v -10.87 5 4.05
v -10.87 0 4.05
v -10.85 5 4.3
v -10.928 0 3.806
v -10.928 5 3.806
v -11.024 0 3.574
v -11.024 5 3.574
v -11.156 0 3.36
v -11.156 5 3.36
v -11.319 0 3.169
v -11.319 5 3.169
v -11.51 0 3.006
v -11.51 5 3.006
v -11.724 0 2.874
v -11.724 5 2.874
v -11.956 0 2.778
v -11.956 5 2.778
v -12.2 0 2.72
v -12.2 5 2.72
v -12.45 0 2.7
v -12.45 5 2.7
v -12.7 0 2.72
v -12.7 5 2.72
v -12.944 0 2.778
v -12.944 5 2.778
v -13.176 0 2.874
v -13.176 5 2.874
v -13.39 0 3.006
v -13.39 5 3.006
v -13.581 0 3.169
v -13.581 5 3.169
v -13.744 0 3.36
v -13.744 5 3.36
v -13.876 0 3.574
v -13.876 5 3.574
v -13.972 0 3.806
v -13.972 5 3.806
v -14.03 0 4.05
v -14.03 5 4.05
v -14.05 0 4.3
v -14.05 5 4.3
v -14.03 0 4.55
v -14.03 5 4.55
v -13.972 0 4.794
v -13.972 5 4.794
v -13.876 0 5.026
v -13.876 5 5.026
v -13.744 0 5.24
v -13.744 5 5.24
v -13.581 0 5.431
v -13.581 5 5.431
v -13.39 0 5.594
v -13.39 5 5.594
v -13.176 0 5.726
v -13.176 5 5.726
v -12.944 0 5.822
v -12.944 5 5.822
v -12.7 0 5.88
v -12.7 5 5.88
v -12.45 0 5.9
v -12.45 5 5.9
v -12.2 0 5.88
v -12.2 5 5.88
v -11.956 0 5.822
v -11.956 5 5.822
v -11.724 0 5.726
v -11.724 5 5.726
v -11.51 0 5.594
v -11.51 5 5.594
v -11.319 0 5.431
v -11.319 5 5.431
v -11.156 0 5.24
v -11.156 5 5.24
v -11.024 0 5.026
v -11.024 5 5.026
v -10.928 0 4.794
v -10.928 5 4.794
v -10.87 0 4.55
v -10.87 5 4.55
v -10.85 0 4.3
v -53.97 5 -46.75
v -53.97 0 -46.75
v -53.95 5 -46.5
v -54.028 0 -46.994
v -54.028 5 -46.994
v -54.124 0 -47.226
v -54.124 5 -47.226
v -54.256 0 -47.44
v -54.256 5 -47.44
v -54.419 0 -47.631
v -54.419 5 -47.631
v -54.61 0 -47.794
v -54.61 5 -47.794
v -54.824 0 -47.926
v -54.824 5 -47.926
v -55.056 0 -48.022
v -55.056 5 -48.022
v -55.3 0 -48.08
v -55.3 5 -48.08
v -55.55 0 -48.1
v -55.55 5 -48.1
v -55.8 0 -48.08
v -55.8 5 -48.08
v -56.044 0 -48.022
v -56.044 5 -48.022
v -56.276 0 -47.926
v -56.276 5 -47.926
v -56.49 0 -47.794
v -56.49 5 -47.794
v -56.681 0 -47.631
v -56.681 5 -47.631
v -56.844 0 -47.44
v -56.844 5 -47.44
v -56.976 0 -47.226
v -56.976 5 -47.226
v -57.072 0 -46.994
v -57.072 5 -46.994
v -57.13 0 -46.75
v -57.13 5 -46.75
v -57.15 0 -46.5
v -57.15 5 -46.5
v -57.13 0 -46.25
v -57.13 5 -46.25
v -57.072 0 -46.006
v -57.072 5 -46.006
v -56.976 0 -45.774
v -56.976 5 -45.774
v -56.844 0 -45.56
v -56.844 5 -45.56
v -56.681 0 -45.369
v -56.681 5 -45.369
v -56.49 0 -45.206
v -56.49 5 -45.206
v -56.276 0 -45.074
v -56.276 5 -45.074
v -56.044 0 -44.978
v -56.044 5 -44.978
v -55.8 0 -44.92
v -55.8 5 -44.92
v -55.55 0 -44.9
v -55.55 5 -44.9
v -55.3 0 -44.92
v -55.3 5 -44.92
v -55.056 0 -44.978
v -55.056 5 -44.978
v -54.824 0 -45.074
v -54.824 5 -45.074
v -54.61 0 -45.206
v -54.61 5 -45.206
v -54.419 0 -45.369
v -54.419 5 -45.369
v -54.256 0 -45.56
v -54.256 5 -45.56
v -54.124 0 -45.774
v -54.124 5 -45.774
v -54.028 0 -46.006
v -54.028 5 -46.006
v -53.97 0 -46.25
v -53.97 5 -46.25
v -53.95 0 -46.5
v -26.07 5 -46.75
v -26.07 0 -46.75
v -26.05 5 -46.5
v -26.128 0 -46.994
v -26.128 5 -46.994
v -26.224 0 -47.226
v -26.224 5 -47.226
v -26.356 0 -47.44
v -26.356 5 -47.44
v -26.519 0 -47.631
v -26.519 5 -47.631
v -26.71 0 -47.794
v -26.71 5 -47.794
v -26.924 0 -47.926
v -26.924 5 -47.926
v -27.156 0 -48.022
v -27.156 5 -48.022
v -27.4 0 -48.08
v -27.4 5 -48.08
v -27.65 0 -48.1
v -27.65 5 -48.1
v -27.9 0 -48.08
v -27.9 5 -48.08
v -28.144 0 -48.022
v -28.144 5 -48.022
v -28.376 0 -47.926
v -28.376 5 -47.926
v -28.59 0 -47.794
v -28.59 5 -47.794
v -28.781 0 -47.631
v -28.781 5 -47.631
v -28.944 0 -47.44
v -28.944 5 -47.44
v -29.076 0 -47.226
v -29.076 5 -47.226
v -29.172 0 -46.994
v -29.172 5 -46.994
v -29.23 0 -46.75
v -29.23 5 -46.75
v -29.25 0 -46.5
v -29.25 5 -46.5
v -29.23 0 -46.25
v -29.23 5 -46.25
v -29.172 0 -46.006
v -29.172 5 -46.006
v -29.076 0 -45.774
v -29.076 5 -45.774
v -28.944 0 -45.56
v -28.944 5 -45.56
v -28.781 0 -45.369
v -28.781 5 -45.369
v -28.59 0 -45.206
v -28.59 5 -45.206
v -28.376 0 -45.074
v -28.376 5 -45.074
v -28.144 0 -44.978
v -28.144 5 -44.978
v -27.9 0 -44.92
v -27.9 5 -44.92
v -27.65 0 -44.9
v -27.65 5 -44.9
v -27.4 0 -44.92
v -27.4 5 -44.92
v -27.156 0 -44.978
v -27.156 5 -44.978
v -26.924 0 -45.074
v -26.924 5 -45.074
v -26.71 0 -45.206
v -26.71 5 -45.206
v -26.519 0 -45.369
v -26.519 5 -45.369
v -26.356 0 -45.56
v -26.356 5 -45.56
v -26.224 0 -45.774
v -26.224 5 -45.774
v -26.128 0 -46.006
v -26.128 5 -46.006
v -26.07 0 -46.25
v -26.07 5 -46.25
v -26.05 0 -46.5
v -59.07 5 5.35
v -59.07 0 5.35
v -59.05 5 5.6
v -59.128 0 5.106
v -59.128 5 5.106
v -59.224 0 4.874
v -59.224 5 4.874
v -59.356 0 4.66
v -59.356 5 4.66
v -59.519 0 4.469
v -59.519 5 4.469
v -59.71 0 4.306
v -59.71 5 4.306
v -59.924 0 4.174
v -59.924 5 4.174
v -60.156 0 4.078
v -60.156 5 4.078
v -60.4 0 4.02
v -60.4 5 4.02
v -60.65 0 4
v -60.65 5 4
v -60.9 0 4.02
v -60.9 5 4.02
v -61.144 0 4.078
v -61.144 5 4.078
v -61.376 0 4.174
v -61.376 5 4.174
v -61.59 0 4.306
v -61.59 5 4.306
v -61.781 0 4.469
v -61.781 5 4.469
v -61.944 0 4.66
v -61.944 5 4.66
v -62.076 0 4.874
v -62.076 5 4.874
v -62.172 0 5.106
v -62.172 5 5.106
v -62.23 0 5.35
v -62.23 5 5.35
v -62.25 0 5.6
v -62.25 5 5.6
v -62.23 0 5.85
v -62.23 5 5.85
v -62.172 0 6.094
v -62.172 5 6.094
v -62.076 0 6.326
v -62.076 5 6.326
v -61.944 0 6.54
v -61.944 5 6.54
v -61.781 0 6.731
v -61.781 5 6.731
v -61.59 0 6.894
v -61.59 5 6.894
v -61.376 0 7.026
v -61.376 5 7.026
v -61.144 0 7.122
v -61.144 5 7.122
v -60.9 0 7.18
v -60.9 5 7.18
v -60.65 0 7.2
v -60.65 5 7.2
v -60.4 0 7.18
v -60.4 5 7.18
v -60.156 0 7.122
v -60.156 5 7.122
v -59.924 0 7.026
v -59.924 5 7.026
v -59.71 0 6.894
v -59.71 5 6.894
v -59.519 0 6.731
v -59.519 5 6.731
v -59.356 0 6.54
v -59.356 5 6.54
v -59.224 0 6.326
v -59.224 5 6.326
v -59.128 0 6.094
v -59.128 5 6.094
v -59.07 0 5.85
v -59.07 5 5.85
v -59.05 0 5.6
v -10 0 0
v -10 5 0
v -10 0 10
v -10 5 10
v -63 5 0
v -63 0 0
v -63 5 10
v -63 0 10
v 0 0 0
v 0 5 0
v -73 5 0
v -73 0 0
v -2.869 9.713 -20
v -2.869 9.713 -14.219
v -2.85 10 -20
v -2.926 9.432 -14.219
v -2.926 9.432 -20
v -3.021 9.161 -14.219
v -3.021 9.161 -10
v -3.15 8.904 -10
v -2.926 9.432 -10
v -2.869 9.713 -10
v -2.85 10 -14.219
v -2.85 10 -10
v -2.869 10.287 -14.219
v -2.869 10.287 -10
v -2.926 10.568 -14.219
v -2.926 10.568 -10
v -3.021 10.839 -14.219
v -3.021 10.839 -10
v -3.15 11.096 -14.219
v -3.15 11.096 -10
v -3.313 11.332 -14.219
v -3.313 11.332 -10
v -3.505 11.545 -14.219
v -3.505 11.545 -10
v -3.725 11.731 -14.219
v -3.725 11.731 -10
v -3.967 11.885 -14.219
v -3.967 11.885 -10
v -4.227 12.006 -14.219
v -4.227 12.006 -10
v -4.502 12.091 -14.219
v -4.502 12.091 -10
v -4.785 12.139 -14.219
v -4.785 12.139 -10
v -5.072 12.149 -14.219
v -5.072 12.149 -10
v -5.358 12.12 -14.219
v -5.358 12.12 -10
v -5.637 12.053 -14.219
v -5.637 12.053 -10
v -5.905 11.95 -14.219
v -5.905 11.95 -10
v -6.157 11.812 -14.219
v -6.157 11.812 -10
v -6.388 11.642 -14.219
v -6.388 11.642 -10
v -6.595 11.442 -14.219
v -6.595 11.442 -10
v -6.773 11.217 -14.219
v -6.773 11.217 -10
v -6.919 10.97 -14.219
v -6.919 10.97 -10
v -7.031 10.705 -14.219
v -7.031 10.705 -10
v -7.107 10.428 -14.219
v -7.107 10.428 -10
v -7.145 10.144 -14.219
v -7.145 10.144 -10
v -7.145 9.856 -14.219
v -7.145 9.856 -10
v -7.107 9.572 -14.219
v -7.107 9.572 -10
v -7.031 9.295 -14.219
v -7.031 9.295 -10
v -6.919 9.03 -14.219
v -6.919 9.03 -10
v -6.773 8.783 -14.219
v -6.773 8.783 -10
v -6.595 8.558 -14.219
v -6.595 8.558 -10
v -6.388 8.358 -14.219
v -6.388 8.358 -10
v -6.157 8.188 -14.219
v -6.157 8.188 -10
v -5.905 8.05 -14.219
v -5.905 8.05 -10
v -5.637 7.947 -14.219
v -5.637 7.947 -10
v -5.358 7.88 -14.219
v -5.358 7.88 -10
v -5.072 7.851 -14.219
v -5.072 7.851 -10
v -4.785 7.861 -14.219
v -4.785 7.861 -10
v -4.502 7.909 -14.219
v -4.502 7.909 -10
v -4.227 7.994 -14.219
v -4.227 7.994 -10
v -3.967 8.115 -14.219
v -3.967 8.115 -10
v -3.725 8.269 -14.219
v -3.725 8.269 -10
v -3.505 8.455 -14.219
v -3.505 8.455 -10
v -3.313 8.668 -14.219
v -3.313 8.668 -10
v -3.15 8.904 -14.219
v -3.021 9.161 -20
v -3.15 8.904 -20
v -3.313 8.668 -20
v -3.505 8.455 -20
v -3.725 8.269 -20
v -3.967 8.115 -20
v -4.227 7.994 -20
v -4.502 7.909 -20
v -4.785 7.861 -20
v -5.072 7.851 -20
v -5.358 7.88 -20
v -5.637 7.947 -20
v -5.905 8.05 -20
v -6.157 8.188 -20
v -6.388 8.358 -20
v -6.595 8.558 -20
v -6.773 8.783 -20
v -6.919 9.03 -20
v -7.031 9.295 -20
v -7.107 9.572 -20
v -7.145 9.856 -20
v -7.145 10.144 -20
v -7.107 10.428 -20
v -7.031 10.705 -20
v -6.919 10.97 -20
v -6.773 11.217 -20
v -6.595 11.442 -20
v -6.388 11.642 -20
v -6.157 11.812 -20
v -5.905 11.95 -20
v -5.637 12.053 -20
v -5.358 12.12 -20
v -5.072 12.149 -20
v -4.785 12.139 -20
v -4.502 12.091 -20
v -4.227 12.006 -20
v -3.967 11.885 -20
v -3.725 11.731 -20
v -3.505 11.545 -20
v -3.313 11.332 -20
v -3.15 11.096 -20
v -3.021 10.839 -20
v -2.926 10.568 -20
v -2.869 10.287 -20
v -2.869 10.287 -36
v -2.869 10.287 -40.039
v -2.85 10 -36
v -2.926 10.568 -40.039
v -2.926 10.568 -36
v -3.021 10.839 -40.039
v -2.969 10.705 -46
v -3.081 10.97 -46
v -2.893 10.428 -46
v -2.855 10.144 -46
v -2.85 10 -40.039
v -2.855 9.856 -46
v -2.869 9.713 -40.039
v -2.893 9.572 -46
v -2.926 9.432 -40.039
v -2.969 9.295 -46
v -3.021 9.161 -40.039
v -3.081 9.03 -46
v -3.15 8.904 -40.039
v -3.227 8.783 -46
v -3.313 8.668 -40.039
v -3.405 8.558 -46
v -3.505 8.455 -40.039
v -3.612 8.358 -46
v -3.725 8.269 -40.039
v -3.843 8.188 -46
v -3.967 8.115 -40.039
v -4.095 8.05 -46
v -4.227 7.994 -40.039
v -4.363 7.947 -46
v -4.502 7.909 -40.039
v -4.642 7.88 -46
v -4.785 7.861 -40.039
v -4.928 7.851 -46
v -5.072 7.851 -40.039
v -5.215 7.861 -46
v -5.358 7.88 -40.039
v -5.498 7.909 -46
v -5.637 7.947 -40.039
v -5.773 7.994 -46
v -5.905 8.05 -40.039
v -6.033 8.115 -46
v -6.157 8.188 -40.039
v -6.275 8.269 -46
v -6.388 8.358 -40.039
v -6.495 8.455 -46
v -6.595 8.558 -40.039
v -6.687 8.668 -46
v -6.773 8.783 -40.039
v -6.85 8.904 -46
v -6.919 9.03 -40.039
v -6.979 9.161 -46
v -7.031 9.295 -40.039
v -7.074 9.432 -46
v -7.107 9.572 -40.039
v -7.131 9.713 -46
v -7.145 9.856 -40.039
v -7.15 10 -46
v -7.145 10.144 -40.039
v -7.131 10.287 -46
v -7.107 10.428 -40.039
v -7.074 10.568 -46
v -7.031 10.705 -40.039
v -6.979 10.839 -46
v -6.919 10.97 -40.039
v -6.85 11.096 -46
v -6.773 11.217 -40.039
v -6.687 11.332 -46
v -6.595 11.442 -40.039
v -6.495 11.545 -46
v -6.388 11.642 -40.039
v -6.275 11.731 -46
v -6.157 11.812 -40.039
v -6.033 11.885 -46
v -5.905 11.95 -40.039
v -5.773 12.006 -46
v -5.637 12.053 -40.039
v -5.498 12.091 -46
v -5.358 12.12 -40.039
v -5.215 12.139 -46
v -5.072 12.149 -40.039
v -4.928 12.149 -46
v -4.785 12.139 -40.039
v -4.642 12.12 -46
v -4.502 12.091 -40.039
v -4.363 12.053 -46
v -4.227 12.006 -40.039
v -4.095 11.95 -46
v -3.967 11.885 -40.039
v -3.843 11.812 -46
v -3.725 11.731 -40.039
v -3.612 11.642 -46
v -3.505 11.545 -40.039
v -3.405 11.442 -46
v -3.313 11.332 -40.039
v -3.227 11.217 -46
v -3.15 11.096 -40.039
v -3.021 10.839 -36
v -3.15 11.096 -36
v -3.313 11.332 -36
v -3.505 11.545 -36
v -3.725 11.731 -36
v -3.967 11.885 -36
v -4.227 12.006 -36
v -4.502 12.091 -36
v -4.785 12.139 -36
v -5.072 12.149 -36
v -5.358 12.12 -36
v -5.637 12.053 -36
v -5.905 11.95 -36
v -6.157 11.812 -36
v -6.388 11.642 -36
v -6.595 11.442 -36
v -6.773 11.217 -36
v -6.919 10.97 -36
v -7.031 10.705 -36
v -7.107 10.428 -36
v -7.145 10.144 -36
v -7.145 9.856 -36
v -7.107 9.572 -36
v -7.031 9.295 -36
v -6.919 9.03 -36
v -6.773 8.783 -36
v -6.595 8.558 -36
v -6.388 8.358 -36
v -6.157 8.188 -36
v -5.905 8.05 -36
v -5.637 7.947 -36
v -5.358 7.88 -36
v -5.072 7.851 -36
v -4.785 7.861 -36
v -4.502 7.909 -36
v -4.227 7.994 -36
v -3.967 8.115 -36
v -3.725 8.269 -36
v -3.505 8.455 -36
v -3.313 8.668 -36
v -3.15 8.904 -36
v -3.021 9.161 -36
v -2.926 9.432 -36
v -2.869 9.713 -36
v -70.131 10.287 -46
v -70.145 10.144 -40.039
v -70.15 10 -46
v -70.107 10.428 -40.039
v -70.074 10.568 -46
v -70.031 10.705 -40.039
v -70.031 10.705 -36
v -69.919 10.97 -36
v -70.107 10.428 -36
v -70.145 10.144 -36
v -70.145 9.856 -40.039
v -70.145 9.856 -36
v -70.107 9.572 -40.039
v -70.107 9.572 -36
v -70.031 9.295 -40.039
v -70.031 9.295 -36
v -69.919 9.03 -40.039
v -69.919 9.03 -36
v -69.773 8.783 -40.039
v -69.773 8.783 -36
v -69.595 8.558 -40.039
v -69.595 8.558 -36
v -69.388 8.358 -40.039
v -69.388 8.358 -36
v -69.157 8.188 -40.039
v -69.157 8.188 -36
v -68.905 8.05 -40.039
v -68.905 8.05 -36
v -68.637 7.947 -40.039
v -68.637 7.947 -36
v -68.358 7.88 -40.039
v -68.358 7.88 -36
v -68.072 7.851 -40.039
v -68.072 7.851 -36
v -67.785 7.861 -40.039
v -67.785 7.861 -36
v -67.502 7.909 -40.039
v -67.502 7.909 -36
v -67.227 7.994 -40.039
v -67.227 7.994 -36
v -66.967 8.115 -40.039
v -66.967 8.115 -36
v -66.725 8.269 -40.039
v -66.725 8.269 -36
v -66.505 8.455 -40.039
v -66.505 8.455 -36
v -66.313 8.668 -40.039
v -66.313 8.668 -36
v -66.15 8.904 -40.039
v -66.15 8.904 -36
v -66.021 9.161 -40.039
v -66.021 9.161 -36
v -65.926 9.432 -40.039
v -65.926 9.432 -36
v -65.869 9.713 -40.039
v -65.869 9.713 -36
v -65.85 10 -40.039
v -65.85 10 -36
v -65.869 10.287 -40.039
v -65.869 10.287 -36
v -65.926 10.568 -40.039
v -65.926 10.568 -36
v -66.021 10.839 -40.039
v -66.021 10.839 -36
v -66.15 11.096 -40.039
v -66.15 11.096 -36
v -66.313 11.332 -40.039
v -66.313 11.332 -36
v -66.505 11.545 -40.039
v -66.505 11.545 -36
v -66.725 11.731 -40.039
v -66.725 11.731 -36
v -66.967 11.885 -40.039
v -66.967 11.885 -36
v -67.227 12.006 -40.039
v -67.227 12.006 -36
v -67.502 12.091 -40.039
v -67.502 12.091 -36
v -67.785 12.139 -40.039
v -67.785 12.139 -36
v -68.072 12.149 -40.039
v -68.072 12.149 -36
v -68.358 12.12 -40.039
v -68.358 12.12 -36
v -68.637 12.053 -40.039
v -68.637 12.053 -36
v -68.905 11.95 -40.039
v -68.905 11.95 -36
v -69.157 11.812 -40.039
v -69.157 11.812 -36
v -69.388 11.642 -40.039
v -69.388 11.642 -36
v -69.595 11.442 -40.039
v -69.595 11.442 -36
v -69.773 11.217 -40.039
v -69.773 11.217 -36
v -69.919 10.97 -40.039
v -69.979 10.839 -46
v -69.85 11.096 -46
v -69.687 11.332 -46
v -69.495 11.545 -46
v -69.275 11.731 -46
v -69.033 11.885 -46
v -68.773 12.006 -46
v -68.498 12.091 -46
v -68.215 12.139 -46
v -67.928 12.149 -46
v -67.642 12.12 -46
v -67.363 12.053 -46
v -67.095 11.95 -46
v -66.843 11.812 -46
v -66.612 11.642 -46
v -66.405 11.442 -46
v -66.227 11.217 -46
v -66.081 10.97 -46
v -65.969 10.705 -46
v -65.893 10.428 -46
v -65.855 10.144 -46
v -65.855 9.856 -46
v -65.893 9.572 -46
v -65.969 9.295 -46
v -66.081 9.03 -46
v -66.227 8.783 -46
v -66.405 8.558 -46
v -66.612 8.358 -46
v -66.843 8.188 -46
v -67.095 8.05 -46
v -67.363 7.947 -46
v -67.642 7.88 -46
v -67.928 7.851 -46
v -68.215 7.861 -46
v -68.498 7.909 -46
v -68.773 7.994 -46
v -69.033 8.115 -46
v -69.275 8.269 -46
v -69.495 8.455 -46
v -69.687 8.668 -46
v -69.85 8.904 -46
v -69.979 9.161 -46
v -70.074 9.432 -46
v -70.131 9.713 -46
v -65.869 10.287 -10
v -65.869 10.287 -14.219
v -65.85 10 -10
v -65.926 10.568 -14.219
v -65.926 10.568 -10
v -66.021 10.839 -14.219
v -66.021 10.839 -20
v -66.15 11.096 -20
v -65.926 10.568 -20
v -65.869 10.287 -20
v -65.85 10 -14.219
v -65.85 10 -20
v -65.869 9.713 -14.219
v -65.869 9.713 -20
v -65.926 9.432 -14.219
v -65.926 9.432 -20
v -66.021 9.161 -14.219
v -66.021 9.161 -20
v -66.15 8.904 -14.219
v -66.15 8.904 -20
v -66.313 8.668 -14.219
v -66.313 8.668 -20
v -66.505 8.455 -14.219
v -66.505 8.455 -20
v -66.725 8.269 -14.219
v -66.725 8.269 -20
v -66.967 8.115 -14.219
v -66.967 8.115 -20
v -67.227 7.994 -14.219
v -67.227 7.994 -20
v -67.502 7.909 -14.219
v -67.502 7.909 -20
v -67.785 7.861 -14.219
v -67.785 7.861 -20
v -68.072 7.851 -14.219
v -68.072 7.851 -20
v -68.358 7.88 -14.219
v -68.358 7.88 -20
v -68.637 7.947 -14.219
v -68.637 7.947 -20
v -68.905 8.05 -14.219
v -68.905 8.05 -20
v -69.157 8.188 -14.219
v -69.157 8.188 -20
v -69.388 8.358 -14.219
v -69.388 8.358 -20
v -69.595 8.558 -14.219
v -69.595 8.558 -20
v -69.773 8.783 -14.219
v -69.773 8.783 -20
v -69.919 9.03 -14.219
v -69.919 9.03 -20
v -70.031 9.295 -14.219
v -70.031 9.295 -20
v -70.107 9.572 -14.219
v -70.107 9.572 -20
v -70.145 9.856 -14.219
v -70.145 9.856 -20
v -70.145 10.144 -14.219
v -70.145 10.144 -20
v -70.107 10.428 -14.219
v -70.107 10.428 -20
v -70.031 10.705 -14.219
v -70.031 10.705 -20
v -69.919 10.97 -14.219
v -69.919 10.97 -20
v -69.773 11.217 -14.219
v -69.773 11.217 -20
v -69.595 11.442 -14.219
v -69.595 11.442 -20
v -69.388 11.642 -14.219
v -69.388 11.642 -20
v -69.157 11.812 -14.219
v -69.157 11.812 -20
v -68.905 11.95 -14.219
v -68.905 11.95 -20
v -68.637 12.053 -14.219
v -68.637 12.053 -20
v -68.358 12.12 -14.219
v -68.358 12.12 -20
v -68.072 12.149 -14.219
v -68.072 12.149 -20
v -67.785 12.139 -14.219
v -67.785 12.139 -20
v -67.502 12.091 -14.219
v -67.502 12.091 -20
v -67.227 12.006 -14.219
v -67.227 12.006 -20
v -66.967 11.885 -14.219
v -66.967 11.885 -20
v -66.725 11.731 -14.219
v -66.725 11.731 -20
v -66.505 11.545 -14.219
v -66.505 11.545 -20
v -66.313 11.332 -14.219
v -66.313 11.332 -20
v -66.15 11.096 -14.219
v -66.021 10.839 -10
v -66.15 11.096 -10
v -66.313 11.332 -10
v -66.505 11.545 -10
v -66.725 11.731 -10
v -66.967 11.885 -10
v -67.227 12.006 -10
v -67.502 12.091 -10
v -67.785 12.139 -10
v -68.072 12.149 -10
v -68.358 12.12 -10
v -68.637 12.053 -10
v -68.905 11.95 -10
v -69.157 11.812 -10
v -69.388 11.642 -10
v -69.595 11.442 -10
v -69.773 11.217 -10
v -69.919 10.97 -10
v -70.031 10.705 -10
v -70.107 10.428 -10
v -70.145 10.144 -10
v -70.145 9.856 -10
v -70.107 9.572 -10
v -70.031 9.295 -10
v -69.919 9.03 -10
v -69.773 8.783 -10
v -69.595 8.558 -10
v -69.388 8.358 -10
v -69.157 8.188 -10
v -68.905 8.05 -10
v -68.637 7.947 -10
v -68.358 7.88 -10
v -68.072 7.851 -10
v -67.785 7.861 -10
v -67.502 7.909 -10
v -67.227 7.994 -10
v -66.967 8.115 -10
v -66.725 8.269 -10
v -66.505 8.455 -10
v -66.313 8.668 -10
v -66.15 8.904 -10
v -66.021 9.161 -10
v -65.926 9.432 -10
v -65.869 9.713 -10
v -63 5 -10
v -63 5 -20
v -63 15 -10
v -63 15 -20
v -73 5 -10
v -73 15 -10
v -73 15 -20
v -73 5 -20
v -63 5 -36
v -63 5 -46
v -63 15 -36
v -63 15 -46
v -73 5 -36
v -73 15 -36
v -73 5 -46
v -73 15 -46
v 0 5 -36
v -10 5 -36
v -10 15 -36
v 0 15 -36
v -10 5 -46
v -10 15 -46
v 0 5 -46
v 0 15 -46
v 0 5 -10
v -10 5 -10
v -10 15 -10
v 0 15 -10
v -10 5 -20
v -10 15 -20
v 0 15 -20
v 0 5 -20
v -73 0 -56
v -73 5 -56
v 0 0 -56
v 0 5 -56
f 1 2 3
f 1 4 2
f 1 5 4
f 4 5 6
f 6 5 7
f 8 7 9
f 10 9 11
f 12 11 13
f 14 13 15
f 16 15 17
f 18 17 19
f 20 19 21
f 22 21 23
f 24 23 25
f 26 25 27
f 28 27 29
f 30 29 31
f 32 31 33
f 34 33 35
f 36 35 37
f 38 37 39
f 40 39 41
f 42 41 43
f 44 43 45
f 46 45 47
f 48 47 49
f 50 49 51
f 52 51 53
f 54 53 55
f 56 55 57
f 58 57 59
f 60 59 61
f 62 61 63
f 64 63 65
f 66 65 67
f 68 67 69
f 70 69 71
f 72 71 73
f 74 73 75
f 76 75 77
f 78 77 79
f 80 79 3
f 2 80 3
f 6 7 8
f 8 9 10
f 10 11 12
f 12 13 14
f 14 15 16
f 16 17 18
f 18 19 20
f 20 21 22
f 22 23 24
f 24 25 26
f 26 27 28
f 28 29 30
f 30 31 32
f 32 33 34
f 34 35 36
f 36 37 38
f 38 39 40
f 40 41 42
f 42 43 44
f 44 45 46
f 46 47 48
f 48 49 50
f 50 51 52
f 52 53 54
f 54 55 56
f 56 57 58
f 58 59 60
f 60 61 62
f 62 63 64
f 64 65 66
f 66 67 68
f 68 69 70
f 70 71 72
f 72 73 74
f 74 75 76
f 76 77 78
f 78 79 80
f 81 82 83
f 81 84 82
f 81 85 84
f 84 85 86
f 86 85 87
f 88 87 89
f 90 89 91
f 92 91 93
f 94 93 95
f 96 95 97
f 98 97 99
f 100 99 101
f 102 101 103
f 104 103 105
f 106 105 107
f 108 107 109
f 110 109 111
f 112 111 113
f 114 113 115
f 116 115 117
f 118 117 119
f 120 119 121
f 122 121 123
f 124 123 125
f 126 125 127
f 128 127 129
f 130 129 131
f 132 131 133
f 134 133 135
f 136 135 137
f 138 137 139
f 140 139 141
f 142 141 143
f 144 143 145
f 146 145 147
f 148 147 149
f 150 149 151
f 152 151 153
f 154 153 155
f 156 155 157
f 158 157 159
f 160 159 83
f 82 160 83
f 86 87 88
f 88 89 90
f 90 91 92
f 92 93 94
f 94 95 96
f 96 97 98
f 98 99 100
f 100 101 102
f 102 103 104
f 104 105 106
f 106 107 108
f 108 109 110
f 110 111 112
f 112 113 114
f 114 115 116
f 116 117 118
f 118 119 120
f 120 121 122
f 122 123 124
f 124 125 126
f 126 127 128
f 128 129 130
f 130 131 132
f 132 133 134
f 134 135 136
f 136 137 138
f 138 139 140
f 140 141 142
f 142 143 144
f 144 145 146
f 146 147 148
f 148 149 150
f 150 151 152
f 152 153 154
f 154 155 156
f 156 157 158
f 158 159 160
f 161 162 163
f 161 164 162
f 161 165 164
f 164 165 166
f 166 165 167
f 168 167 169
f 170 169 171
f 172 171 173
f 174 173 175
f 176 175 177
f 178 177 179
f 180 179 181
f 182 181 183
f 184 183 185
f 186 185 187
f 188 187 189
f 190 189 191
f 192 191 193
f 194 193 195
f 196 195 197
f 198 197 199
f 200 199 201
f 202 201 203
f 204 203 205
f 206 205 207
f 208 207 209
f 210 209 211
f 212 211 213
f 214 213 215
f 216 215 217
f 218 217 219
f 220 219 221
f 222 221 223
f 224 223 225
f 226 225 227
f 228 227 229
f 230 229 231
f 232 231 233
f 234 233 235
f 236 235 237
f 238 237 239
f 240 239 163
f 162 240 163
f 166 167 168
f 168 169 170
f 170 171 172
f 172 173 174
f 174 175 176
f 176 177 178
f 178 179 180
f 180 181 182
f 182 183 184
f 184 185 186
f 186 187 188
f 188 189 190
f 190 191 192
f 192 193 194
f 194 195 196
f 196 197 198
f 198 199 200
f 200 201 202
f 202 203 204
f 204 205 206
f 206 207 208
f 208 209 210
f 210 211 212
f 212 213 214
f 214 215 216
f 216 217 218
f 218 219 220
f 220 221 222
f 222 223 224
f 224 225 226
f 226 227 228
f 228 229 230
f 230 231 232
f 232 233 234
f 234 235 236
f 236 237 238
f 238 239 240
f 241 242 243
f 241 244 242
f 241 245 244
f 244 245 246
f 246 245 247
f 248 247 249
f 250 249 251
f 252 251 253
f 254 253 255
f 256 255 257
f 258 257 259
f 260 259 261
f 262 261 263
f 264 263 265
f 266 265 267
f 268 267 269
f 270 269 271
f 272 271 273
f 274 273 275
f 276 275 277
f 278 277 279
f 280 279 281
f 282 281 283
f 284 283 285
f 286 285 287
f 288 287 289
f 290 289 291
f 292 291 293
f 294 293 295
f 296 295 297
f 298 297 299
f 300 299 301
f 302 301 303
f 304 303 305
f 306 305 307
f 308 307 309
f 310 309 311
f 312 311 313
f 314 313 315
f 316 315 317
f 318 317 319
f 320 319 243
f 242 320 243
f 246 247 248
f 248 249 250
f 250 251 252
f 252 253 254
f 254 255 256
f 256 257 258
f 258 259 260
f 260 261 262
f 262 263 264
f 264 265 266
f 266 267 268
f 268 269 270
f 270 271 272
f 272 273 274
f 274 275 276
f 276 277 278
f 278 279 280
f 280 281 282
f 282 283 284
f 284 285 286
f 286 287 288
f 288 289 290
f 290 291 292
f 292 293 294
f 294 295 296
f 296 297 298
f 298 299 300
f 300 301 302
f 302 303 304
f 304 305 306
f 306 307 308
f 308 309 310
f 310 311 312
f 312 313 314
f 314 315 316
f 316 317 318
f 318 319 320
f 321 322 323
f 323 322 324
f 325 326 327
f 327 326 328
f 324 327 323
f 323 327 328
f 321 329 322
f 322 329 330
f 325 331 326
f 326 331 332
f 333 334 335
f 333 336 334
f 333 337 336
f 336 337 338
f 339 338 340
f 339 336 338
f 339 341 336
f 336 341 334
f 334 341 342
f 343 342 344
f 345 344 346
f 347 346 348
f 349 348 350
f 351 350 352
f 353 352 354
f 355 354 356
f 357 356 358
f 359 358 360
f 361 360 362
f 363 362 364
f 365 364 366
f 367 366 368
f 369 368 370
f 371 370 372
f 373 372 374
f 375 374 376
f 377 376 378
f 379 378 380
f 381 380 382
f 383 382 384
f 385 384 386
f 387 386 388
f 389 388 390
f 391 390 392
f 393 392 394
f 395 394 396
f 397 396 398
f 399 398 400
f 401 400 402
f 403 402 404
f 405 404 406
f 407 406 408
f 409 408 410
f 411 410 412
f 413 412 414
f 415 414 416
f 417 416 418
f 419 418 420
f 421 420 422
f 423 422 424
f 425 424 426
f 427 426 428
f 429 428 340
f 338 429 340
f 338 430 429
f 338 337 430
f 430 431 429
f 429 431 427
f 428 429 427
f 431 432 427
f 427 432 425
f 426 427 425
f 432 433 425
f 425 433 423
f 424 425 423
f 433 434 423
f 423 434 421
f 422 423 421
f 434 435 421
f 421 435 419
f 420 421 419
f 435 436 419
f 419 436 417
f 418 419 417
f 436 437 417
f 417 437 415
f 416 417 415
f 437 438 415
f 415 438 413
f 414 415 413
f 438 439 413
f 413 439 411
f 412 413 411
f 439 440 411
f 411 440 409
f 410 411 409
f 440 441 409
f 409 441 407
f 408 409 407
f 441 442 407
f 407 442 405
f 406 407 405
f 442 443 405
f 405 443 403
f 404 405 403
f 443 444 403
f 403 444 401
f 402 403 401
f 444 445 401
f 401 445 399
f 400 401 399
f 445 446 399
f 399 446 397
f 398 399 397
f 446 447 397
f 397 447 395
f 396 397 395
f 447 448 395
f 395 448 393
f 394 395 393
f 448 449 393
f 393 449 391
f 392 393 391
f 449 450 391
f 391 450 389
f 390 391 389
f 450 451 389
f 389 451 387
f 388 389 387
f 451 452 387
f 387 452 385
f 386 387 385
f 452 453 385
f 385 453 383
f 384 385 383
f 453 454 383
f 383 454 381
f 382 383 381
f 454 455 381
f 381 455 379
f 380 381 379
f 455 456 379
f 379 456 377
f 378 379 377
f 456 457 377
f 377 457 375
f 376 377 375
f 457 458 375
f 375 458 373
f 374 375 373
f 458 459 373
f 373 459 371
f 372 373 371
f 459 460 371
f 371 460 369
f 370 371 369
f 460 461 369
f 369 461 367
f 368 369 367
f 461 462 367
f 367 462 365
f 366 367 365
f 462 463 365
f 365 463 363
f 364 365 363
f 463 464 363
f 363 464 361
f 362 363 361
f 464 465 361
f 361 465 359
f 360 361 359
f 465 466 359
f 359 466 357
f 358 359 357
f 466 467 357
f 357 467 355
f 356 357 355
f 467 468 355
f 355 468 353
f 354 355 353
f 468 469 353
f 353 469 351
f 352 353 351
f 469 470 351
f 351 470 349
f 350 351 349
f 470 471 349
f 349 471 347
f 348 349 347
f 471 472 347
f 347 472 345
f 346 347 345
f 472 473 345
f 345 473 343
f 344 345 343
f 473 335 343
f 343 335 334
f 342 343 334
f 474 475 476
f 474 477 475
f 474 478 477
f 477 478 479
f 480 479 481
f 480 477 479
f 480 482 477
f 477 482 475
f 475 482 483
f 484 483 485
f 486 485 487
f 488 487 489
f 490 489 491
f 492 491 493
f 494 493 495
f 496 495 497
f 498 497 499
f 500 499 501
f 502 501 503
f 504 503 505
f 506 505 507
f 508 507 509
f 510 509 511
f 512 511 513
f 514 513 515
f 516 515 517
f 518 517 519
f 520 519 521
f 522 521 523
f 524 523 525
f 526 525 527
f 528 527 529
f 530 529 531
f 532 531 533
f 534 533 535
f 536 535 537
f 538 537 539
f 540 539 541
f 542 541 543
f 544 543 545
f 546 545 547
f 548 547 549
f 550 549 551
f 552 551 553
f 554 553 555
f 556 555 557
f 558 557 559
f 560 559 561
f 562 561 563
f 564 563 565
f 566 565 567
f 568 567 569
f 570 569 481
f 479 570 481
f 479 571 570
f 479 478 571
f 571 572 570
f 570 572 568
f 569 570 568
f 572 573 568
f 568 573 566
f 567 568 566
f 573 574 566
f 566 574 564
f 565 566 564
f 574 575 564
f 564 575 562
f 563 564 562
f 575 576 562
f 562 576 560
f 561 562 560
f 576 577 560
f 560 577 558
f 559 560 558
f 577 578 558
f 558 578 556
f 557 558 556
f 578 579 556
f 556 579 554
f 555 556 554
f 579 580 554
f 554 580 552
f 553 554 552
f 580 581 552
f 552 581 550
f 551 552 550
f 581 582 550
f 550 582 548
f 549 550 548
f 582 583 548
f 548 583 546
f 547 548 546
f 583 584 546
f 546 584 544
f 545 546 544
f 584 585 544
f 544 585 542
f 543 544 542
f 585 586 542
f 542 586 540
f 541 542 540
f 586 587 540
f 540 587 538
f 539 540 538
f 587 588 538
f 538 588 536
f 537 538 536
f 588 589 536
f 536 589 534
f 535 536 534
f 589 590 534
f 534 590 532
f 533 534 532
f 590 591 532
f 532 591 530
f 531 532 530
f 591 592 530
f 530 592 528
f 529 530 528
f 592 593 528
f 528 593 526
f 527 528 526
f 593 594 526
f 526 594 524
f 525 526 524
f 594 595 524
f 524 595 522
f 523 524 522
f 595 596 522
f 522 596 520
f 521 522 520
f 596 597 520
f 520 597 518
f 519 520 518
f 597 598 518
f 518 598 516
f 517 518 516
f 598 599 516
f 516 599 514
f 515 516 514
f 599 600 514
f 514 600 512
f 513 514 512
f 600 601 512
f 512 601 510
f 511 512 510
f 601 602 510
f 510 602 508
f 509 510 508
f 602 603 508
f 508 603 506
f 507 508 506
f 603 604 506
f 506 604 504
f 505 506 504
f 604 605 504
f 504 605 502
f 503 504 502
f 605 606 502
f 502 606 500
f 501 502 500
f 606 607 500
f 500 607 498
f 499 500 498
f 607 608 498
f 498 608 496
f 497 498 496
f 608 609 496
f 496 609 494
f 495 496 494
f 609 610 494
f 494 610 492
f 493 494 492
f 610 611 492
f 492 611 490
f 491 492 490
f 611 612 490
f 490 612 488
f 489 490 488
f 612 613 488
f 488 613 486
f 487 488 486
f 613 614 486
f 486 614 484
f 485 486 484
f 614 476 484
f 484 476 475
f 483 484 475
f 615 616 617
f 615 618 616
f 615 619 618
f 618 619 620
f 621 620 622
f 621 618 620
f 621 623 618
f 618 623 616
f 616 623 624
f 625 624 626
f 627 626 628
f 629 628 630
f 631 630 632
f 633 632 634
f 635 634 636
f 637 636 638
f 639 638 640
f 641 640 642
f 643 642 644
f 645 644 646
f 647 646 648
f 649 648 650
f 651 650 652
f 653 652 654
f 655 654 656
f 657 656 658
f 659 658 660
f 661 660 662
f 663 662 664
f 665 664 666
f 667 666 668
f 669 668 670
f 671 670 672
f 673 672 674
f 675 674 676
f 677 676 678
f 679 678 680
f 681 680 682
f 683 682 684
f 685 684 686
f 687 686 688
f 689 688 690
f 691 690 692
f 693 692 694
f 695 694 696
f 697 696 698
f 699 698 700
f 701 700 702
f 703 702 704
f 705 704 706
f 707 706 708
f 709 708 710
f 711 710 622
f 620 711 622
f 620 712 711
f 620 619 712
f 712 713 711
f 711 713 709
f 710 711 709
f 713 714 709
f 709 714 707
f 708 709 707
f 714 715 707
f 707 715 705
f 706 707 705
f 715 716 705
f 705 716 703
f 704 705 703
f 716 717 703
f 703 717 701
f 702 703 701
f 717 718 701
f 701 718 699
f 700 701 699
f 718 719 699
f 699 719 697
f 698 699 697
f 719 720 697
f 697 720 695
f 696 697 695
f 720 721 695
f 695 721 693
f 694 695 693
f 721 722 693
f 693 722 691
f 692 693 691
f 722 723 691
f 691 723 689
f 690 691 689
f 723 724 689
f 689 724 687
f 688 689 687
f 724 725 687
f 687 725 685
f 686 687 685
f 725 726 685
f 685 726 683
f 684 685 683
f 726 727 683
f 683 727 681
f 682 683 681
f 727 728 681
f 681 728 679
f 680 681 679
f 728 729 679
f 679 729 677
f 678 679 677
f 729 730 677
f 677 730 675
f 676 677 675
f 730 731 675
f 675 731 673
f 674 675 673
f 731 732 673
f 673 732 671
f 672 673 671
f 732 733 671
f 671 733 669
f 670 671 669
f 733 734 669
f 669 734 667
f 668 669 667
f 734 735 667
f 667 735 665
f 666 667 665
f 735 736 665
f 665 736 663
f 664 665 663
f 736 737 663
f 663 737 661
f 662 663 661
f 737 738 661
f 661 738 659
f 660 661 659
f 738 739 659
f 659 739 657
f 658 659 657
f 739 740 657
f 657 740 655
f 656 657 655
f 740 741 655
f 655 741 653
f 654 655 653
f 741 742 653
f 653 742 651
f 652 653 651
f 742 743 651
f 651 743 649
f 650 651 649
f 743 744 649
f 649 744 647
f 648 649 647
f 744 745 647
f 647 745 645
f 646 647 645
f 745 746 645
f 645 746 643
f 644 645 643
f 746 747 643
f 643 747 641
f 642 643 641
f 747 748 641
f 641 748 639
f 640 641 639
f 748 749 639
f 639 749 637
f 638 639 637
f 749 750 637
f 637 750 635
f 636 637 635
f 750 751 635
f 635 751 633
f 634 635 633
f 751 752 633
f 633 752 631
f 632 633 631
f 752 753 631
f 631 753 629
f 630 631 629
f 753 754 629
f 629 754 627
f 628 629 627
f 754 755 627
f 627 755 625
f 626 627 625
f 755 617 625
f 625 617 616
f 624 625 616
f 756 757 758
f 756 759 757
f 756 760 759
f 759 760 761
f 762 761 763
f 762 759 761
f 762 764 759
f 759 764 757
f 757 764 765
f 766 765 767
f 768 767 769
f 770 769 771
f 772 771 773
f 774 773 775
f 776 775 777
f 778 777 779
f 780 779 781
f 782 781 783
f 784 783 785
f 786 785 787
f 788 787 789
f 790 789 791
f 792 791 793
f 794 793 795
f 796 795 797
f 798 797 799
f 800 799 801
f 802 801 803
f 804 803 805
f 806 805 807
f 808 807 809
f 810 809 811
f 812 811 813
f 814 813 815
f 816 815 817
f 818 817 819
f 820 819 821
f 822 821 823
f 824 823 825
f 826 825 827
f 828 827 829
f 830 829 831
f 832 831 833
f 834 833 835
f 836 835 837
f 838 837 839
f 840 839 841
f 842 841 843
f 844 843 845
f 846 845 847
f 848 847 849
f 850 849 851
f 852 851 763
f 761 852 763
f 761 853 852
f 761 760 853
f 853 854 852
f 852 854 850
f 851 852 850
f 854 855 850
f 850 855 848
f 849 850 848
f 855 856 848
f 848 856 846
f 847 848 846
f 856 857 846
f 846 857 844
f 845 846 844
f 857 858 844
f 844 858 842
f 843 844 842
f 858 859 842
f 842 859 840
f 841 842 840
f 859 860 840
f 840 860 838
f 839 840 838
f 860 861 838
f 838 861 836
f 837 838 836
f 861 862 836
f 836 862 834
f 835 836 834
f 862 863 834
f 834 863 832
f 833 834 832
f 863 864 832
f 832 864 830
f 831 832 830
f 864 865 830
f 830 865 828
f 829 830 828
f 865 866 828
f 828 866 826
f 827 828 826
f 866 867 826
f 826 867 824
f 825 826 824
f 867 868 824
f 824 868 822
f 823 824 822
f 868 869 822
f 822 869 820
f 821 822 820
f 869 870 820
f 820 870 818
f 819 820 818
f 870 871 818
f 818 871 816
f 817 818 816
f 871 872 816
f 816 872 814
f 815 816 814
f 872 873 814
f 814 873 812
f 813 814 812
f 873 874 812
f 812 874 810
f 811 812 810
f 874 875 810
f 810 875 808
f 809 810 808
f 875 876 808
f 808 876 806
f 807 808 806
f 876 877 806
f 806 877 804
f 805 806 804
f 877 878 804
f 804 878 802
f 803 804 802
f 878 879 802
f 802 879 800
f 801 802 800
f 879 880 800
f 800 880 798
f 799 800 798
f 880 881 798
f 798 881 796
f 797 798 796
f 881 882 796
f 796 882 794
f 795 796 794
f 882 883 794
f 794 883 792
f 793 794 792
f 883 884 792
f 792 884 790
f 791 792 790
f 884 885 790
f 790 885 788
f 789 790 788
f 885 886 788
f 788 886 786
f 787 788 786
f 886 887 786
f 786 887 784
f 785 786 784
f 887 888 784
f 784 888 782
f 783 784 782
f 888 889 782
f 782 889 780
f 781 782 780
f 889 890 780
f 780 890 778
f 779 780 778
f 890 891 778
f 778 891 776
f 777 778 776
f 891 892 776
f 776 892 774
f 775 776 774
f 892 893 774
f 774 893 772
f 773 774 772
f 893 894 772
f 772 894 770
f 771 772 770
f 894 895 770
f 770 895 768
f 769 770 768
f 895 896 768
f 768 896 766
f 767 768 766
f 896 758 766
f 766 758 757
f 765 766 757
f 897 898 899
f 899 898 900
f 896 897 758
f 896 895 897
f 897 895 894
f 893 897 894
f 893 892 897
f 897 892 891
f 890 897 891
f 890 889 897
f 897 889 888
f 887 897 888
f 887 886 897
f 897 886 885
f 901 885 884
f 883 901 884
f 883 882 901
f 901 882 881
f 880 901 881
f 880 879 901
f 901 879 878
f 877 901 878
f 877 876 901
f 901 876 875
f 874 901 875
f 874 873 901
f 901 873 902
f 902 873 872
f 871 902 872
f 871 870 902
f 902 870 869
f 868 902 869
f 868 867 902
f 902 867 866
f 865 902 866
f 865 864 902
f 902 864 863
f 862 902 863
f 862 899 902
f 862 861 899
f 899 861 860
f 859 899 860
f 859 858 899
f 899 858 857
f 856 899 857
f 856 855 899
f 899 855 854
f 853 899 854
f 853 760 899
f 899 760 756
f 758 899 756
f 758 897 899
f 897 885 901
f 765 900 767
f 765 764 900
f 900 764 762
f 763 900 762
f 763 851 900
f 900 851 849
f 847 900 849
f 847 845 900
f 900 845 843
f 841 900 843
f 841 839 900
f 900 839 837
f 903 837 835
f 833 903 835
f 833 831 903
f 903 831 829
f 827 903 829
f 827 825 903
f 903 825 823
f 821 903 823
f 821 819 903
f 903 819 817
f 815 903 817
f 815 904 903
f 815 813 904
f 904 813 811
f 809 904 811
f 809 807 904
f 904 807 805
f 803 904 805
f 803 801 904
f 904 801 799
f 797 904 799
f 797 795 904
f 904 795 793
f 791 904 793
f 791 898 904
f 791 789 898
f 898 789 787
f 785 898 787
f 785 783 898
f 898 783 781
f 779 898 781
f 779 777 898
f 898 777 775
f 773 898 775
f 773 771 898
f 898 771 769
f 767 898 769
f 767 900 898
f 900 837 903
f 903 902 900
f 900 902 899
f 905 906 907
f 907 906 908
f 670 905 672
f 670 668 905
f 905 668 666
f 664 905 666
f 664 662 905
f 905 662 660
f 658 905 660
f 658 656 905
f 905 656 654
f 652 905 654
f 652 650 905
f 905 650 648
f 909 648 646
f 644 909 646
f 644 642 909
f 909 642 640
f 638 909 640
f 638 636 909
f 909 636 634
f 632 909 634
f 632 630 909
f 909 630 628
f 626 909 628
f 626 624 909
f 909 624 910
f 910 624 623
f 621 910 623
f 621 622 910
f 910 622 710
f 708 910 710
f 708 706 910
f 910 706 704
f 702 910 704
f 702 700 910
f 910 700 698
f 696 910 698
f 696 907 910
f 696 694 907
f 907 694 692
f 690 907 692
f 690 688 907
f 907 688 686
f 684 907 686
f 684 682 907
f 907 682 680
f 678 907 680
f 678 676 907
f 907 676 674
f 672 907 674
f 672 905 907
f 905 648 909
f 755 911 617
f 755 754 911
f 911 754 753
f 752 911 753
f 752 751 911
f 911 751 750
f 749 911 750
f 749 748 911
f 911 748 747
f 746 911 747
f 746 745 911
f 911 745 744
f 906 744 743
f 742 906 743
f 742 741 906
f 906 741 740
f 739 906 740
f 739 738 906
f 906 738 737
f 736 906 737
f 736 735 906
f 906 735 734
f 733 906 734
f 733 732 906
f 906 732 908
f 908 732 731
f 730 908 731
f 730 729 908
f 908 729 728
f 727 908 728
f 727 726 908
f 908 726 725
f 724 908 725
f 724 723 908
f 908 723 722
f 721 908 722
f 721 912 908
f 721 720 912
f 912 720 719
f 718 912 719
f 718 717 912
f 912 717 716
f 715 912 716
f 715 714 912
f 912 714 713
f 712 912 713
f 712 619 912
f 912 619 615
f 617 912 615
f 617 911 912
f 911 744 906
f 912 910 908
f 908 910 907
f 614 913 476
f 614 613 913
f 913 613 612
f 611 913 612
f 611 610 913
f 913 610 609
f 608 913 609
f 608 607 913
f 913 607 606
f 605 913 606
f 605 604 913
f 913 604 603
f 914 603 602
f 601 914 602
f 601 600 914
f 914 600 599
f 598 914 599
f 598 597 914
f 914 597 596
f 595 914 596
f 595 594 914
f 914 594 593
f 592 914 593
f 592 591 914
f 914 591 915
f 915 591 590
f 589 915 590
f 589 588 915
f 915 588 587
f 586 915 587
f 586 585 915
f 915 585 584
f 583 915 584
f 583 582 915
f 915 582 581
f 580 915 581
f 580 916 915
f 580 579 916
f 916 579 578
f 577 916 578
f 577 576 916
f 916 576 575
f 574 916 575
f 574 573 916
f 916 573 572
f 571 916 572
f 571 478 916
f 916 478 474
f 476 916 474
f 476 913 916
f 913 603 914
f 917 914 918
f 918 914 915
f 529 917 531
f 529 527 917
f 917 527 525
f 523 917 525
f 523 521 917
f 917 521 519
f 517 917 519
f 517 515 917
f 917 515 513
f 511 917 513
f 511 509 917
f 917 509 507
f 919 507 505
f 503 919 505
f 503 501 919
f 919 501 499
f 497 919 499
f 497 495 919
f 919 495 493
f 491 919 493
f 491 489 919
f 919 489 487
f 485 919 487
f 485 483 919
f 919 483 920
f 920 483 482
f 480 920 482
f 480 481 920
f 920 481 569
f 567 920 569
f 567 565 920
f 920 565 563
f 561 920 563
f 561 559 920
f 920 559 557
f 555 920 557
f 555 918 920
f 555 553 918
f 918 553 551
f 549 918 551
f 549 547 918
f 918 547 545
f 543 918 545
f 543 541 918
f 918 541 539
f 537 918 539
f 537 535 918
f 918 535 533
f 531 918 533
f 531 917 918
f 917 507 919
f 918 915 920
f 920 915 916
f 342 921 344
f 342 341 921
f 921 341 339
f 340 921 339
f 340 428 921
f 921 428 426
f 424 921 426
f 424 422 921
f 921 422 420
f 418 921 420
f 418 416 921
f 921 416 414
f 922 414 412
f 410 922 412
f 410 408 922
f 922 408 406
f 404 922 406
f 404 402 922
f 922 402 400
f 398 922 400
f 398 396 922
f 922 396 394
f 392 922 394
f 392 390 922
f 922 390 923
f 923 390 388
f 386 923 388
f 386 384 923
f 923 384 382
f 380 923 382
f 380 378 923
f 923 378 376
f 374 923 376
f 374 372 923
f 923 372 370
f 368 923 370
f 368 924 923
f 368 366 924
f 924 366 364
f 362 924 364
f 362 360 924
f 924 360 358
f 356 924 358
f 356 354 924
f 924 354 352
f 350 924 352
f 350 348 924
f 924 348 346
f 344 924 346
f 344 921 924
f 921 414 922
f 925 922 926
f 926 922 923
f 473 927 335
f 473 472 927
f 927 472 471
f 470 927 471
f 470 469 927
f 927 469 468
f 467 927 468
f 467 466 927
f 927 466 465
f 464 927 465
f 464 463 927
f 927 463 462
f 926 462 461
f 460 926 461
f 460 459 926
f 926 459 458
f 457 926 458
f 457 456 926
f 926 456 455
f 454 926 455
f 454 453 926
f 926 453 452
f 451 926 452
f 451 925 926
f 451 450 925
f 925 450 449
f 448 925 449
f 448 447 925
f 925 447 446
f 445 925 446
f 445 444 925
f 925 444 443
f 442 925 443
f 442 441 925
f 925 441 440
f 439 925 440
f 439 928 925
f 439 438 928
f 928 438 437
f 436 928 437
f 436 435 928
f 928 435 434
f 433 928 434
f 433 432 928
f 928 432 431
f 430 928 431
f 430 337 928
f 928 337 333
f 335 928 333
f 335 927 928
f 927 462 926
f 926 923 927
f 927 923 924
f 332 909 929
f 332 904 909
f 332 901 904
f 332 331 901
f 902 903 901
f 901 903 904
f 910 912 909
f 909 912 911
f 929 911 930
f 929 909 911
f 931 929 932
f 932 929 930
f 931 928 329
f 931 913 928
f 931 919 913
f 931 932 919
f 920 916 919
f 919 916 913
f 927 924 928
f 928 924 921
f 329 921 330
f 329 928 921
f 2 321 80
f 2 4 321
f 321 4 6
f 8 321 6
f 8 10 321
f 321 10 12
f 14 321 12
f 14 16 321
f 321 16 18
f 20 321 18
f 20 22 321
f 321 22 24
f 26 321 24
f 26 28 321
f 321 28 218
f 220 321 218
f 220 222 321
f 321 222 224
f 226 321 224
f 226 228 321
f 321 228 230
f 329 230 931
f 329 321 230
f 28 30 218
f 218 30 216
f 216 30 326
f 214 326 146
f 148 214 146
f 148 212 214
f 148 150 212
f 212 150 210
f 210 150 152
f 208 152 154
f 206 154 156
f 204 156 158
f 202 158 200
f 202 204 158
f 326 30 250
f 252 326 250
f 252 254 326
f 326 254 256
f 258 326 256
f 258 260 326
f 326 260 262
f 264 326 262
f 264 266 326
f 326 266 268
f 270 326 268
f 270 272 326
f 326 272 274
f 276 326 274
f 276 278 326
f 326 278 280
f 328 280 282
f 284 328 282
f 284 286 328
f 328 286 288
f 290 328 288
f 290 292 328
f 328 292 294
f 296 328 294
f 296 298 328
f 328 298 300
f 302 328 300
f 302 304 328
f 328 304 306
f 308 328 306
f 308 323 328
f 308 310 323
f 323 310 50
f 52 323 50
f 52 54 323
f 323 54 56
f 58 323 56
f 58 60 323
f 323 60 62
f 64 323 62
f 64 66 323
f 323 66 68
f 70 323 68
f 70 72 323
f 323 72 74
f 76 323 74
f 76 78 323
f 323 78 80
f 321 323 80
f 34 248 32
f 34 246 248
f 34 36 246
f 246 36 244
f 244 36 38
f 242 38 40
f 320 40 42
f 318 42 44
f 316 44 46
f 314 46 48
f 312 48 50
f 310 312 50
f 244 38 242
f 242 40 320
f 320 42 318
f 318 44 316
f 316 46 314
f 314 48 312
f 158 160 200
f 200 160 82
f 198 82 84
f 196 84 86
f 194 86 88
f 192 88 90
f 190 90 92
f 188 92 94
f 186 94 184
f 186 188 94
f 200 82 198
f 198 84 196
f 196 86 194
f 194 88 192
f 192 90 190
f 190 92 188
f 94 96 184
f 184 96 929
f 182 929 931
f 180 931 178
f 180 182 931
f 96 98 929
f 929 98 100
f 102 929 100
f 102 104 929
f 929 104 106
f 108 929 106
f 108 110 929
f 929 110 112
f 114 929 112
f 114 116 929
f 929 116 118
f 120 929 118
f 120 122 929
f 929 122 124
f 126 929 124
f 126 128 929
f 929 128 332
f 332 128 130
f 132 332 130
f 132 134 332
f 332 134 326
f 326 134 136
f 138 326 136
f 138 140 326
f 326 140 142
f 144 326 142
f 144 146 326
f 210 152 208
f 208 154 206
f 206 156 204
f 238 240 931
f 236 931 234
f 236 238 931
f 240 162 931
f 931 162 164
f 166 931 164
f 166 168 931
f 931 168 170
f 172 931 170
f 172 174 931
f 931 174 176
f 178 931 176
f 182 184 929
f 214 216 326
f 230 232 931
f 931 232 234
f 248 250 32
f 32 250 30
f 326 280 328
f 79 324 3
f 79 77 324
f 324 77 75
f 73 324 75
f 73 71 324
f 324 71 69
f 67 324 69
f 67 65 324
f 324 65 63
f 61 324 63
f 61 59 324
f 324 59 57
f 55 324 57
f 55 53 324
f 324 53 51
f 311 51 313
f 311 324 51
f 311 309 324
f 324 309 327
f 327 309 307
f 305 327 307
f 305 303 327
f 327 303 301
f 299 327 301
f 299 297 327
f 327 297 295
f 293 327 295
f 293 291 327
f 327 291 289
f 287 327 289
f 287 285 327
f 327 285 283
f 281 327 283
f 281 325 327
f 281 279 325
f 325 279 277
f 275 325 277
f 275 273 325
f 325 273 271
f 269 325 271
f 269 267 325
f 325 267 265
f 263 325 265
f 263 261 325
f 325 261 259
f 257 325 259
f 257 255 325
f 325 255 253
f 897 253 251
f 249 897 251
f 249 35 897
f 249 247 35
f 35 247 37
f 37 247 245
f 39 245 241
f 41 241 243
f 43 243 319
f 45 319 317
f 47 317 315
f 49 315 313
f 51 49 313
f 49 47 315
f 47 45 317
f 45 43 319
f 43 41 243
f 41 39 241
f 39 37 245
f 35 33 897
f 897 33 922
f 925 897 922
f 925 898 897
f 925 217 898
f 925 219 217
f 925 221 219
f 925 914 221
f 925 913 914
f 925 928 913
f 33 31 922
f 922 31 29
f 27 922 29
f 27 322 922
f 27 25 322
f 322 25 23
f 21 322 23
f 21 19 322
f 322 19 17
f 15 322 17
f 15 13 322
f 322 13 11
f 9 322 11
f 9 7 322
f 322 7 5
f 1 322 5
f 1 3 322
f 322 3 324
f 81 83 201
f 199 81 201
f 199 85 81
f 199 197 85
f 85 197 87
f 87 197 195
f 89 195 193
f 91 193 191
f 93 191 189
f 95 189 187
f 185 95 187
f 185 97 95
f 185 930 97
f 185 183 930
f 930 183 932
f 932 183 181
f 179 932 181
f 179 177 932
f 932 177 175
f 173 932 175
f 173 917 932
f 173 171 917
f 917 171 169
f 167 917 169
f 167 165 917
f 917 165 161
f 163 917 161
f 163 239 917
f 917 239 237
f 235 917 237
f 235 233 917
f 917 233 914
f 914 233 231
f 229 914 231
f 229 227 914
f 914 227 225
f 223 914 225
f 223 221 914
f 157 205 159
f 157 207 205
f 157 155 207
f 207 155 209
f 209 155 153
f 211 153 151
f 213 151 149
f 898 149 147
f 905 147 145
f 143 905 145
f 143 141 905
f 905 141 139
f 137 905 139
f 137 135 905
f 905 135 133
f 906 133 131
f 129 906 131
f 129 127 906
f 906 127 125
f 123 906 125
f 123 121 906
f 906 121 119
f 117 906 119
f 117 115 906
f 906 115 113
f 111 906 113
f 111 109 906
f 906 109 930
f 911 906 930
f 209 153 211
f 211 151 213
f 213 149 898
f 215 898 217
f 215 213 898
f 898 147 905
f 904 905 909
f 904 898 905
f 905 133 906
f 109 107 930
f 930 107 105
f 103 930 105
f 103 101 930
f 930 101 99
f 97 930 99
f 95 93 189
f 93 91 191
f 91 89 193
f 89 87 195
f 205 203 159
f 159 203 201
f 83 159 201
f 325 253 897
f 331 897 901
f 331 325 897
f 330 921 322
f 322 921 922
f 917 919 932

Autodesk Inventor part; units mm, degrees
ref_plane "YZ Plane" through (0, 0, 0) normal (1, 0, 0) x (0, 1, 0)
ref_plane "XZ Plane" through (0, 0, 0) normal (0, 1, 0) x (-1, 0, 0)
ref_plane "XY Plane" through (0, 0, 0) normal (0, 0, 1) x (1, 0, 0)
sketch "Sketch1" plane through (0, 0, 0) normal (0, 1, 0) x (-1, 0, 0)
  line L0 (0, 0) -> (73, 0)
  line L1 (73, 0) -> (73, -56)
  line L2 (73, -56) -> (0, -56)
  line L3 (0, -56) -> (0, 0)
  dimension "d0" = 73
  dimension "d1" = 56
extrude "Extrusion1" add sketch "Sketch1" along normal blind 5
sketch "Sketch2" plane through (0, 5, 0) normal (0, 1, 0) x (1, 0, 0)
  line L0 (-73, 46) -> (-63, 46)
  line L1 (-63, 46) -> (-63, 36)
  line L2 (-63, 36) -> (-73, 36)
  line L3 (-73, 36) -> (-73, 46)
  line L4 (-10, 46) -> (0, 46)
  line L5 (0, 46) -> (0, 36)
  line L6 (0, 36) -> (-10, 36)
  line L7 (-10, 36) -> (-10, 46)
  line L8 (-73, 20) -> (-63, 20)
  line L9 (-63, 20) -> (-63, 10)
  line L10 (-63, 10) -> (-73, 10)
  line L11 (-73, 10) -> (-73, 20)
  line L12 (-10, 20) -> (0, 20)
  line L13 (0, 20) -> (0, 10)
  line L14 (0, 10) -> (-10, 10)
  line L15 (-10, 10) -> (-10, 20)
  line L16 (-73, 56) -> (-73, 0) projected
  line L17 (0, 0) -> (0, 56) projected
  line L18 (0, 56) -> (-73, 56) projected
  line L19 (-73, 0) -> (0, 0) projected
  dimension "d4" = 10
  dimension "d5" = 10
  dimension "d6" = 10
  dimension "d7" = 10
  dimension "d8" = 10
  dimension "d9" = 10
  dimension "d10" = 10
  dimension "d11" = 10
  dimension "d12" = 10
  dimension "d13" = 10
  dimension "d14" = 10
  dimension "d15" = 10
extrude "Extrusion2" add sketch "Sketch2" along normal blind 10 contours L0 L1 L2 L3 | L8 L9 L10 L11 | L5 L6 L7 L4 | L13 L14 L15 L12
hole "Hole1" at (-68, 10, -46) direction (0, 0, 1) diameter 4.3 end through all
hole "Hole2" at (-5, 10, -46) direction (0, 0, 1) diameter 4.3 end through all
sketch "Sketch4" plane through (0, 0, 0) normal (0, -1, 0) x (1, 0, 0)
  line L0 (-63.15, 19.6) -> (-9.85, 19.6)
  line L1 (-9.85, 19.6) -> (-9.85, -49)
  line L2 (-9.85, -49) -> (-63.15, -49)
  line L3 (-63.15, -49) -> (-63.15, 19.6)
  line L4 (0, -56) -> (-73, -56) projected
  line L5 (-73, 0) -> (-73, -56) projected
  circle A0 centre (-55.55, -46.5) radius 1.6
  circle A1 centre (-27.65, -46.5) radius 1.6
  circle A2 centre (-12.45, 4.3) radius 1.6
  circle A3 centre (-60.65, 5.6) radius 1.6
  point P0 (0, 0)
  dimension "d40" = 53.3
  dimension "d41" = 68.6
  dimension "d42" = 7
  dimension "d43" = 9.85
  dimension "d44" = 3.2
  dimension "d45" = 3.2
  dimension "d46" = 3.2
  dimension "d47" = 3.2
  dimension "d48" = 14
  dimension "d49" = 15.3
  dimension "d50" = 2.5
  dimension "d51" = 7.6
  dimension "d52" = 66.1
  dimension "d53" = 66.1
  dimension "d54" = 27.9
  dimension "d55" = 15.2
sketch "Sketch5" plane through (-73, 0, 0) normal (0, 0, 1) x (1, 0, 0)
  line L0 (10, 5) -> (63, 5)
  line L1 (63, 5) -> (63, 0)
  line L2 (63, 0) -> (10, 0)
  line L3 (10, 0) -> (10, 5)
  line L4 (73, 0) -> (0, 0) projected
  line L5 (0, 5) -> (73, 5) projected
  line L6 (73, 0) -> (73, 5) projected
  dimension "d56" = 10
  dimension "d57" = 10
extrude "Extrusion3" add sketch "Sketch5" along normal blind 10 contours L0 L1 L2 L3
extrude "Extrusion4" cut sketch "Sketch4" against normal up to next contours A0 | A1 | A2 | A3
properties part number "arduinoPlate" material "ABS Plastic"
